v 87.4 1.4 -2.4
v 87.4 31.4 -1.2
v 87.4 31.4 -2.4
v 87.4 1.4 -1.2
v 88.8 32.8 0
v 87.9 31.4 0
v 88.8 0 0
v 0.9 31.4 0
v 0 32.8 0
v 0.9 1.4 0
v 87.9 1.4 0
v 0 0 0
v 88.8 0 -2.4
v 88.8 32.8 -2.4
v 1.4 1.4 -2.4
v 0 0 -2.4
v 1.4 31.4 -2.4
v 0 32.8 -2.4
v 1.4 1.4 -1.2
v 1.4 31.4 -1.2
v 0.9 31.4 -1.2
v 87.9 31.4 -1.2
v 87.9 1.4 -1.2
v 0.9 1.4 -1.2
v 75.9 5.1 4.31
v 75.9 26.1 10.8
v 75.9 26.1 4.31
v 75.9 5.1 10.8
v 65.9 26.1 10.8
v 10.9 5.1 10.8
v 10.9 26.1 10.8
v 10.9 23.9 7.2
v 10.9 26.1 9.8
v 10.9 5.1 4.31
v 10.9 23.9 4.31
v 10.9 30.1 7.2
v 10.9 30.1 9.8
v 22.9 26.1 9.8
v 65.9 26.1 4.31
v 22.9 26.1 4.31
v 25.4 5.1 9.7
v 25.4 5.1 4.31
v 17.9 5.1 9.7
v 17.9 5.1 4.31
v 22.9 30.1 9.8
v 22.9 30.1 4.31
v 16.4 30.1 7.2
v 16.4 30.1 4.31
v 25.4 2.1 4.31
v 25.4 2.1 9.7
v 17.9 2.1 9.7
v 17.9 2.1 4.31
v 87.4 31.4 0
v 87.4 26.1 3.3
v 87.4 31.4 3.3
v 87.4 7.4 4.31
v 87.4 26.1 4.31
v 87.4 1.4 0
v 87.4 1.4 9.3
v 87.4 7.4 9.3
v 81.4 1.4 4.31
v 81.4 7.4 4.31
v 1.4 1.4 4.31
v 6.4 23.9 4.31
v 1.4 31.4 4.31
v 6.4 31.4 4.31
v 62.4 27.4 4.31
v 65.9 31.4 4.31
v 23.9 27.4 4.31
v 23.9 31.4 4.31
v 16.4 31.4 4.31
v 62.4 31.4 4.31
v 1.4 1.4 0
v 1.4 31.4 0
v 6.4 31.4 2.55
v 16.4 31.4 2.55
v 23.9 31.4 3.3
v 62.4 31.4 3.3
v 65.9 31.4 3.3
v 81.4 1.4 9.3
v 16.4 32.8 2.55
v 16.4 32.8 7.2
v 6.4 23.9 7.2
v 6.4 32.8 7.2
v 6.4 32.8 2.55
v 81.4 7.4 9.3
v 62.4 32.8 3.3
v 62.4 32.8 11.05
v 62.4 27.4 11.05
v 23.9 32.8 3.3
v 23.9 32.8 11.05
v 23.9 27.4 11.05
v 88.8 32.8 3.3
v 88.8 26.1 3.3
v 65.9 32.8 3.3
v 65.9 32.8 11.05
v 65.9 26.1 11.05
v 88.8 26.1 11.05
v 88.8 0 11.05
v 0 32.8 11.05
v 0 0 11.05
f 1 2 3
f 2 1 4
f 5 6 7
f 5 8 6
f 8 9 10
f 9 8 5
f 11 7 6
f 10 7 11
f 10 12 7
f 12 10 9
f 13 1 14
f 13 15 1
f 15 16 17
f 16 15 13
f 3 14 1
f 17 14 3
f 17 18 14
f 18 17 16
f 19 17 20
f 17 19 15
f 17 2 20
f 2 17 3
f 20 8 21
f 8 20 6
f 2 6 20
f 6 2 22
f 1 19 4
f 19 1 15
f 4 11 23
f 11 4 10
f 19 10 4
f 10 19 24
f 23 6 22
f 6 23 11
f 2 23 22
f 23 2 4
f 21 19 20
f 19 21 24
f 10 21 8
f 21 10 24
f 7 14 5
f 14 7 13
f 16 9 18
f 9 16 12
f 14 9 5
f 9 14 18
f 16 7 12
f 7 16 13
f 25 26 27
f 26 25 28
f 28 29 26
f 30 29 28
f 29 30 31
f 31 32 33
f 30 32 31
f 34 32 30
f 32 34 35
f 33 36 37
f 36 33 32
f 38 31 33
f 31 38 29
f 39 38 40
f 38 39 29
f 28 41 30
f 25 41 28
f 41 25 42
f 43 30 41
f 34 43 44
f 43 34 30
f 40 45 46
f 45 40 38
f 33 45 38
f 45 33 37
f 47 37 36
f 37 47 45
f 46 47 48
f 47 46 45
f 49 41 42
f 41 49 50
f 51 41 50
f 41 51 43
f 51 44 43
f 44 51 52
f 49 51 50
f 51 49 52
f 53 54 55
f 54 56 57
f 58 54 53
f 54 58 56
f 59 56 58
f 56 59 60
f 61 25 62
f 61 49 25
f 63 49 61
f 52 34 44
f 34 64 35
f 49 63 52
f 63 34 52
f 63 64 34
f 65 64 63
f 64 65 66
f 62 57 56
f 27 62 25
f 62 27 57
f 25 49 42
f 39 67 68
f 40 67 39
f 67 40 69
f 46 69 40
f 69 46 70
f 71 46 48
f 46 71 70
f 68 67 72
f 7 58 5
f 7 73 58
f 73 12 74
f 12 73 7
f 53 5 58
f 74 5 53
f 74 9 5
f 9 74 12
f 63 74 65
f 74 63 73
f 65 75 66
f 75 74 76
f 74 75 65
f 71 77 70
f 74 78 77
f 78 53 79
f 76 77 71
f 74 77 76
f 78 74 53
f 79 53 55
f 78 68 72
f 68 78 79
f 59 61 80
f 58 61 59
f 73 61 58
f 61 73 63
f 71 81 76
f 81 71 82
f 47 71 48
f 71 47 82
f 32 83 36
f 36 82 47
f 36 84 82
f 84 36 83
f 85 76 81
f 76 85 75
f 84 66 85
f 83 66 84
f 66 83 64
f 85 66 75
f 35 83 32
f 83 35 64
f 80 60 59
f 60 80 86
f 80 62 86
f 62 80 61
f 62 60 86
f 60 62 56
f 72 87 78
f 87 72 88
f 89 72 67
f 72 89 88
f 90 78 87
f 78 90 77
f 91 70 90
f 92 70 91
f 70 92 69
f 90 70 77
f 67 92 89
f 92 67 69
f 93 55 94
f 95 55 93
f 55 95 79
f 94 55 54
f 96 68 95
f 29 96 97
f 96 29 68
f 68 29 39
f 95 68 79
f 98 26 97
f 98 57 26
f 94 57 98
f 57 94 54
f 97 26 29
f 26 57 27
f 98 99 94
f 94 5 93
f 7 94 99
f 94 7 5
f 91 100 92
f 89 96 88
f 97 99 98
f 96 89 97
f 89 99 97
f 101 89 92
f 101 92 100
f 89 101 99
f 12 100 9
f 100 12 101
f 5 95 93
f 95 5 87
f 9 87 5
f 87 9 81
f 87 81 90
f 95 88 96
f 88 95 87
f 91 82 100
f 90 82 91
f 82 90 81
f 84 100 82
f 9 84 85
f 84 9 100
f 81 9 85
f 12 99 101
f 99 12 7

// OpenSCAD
/*
Changelog:
  rev1:
    - Increase PCB width from 84 to 85mm
    - Increase PCB height from 27.75 to 29mm
    - Increase play from 0.1 to 0.2mm
    - Move USB port from 5.1 to 5.0mm on the x axis
    - Increase USB port width from 9 to 10mm
    - Increase antenna size from 4.5 to 6mm
    - Increse width of front glas panel from 85 to 86mm
    - Move safety pin from 23mm on the x axis to 22mm
    - Increase width of safety pin from 37.5 to 38.5mm
  rev2:
    - Move battery from 11.5 to 10.5mm
    - Increase battery width from 61 to 63mm
    - Increase battery height from 20 to 21mm
    - Increase USB port thickness from 3.4 to 3.9mm
    - Increase USB port height from 7.5 to 8.5mm
    - Move USB port on y axis from 6 to 7mm
    - Increase PCB height from 29 to 29.25mm
    - Increase height of safety pin from 4 to 5mm
  rev3:
    - Increase PCB height from 29.25 to 30.00mm
    - Decrease height of safety pin from 5 to 4mm
    - Add XTAL bodge cutout
    - Increase battery width from 63 to 65mm
    - Move battery from 10.5 to 9.5mm
  rev4:
    - Increase PCB width from 85 to 86mm
    - Increse width of front glas panel from 86 to 87mm
    - Increse thickness of front glas panel from 1 to 1.2mm
    - Move safety pin from 22mm on the x axis to 22.5mm
    - Increase battery cable width from 11.5 to 12mm
    - Increase battery cable height from 3.4 to 4mm
    - Increase battery cable thickness from battery thickness -2mm to batery thickness - 1mm
  rev5:
    - Introduce USB port thickness offset
  rev6:
    - Change USB port y position from 7 to 7.5mm
    - Increase USB port height from 8.5mm to 9mm
*/

PCB_WIDTH = 86;
PCB_HEIGHT = 30;
WALL_THICKNESS = 1.2;
PLAY = 0.2;
PCB_THICKNESS = 3.3;
DEVICE_THICKNESS = 10.65;
BACKING_THICKNESS = 0.4;
GLASS_THICKNESS = 1.2;
GLASS_INSET = 1.2;
GLASS_WIDTH = 87;
COMPONENT_HEIGHT = 1;
TAPE_THICKNESS = 1.1;

// case backside
module case_back() {
    cube([PCB_WIDTH + (WALL_THICKNESS + PLAY) * 2,
      PCB_HEIGHT + (WALL_THICKNESS + PLAY) * 2,
      DEVICE_THICKNESS + BACKING_THICKNESS]);
}

module nametag() {
    USB_PORT_POS_X = 5;
    USB_PORT_POS_Y = 7.5;
    USB_PORT_HEIGHT = 9;
    USB_PORT_WIDTH = 10;
    USB_PORT_THICKNESS = 3.9;
    USB_PORT_THICKNESS_OFFSET = 0.75;
    ANTENNA_WIDTH = 6;
    ANTENNA_HEIGHT = 6;
    ANTENNA_THICKENESS = 6;
    BAT_POS_X = 9.5;
    BAT_POS_Y = 5.3;
    BAT_WIDTH = 65;
    BAT_HEIGHT = 21;
    BAT_THICKNESS = 5.4;
    BAT_CABLE_WIDTH = 12;
    BAT_CABLE_HEIGHT = 4;
    BAT_CABLE_THICKNESS = BAT_THICKNESS - 1;
    XTAL_BODGE_POS_X = 7;
    XTAL_BODGE_WIDTH = 7.5;
    XTAL_BODGE_HEIGHT = 3;
    SAFETY_PIN_POS_X = 22.5;
    SAFETY_IN_POS_Y = 0;
    SAFETY_PIN_WIDTH = 38.5;
    SAFETY_PIN_HEIGHT = 4;
    SAFETY_PIN_THICKNESS = 9.5;
    CONTROLS_POS_X = 21.5;
    CONTROLS_POS_Y = 0;
    CONTROLS_WIDTH = 25;
    CONTROLS_HEIGHT = BAT_POS_Y;
    CONTROLS_THICKNESS = 10;
    cube([PCB_WIDTH, PCB_HEIGHT, PCB_THICKNESS + COMPONENT_HEIGHT + 0.01]);
    translate([USB_PORT_POS_X, PCB_HEIGHT - USB_PORT_POS_Y, PCB_THICKNESS - USB_PORT_THICKNESS_OFFSET]) {
        cube([USB_PORT_WIDTH, USB_PORT_HEIGHT, USB_PORT_THICKNESS + USB_PORT_THICKNESS_OFFSET]);
    }
    translate([BAT_POS_X, PCB_HEIGHT - BAT_POS_Y - BAT_HEIGHT,
                PCB_THICKNESS + COMPONENT_HEIGHT]) {
        cube([BAT_WIDTH, BAT_HEIGHT, BAT_THICKNESS + TAPE_THICKNESS]);
        translate([0, BAT_HEIGHT, 0])
            cube([BAT_CABLE_WIDTH, BAT_CABLE_HEIGHT, BAT_CABLE_THICKNESS + TAPE_THICKNESS]);
        translate([XTAL_BODGE_POS_X, -XTAL_BODGE_HEIGHT, 0])
            cube([XTAL_BODGE_WIDTH, XTAL_BODGE_HEIGHT, BAT_THICKNESS]);
    }
    translate([PCB_WIDTH - ANTENNA_WIDTH, 0, PCB_THICKNESS]) {
        cube([ANTENNA_WIDTH, ANTENNA_HEIGHT, ANTENNA_THICKENESS]);
    }
    translate([SAFETY_PIN_POS_X, PCB_HEIGHT - SAFETY_PIN_HEIGHT, PCB_THICKNESS]) {
        cube([SAFETY_PIN_WIDTH, SAFETY_PIN_HEIGHT + 2, SAFETY_PIN_THICKNESS]);
    }
    translate([PCB_WIDTH - CONTROLS_POS_X, PCB_HEIGHT - CONTROLS_POS_Y - CONTROLS_HEIGHT, PCB_THICKNESS]) {
        cube([CONTROLS_WIDTH + 2, CONTROLS_HEIGHT + 2, CONTROLS_THICKNESS]);
    }
}

module case_front() {
    difference() {
        cube([PCB_WIDTH + (WALL_THICKNESS + PLAY) * 2,
          PCB_HEIGHT + (WALL_THICKNESS + PLAY) * 2,
          GLASS_INSET + GLASS_THICKNESS]);
        translate([WALL_THICKNESS + PLAY, WALL_THICKNESS + PLAY]) {
            cube([PCB_WIDTH, PCB_HEIGHT, GLASS_INSET + GLASS_THICKNESS]);
            translate([-(GLASS_WIDTH - PCB_WIDTH) / 2, 0, GLASS_INSET])
                cube([GLASS_WIDTH, PCB_HEIGHT, GLASS_THICKNESS]);
        }
    }
}

translate([0, 0, -(GLASS_INSET + GLASS_THICKNESS)]) case_front();

difference() {
    case_back();
    translate([(WALL_THICKNESS + PLAY), (WALL_THICKNESS + PLAY), 0 ]) nametag();
}
      
